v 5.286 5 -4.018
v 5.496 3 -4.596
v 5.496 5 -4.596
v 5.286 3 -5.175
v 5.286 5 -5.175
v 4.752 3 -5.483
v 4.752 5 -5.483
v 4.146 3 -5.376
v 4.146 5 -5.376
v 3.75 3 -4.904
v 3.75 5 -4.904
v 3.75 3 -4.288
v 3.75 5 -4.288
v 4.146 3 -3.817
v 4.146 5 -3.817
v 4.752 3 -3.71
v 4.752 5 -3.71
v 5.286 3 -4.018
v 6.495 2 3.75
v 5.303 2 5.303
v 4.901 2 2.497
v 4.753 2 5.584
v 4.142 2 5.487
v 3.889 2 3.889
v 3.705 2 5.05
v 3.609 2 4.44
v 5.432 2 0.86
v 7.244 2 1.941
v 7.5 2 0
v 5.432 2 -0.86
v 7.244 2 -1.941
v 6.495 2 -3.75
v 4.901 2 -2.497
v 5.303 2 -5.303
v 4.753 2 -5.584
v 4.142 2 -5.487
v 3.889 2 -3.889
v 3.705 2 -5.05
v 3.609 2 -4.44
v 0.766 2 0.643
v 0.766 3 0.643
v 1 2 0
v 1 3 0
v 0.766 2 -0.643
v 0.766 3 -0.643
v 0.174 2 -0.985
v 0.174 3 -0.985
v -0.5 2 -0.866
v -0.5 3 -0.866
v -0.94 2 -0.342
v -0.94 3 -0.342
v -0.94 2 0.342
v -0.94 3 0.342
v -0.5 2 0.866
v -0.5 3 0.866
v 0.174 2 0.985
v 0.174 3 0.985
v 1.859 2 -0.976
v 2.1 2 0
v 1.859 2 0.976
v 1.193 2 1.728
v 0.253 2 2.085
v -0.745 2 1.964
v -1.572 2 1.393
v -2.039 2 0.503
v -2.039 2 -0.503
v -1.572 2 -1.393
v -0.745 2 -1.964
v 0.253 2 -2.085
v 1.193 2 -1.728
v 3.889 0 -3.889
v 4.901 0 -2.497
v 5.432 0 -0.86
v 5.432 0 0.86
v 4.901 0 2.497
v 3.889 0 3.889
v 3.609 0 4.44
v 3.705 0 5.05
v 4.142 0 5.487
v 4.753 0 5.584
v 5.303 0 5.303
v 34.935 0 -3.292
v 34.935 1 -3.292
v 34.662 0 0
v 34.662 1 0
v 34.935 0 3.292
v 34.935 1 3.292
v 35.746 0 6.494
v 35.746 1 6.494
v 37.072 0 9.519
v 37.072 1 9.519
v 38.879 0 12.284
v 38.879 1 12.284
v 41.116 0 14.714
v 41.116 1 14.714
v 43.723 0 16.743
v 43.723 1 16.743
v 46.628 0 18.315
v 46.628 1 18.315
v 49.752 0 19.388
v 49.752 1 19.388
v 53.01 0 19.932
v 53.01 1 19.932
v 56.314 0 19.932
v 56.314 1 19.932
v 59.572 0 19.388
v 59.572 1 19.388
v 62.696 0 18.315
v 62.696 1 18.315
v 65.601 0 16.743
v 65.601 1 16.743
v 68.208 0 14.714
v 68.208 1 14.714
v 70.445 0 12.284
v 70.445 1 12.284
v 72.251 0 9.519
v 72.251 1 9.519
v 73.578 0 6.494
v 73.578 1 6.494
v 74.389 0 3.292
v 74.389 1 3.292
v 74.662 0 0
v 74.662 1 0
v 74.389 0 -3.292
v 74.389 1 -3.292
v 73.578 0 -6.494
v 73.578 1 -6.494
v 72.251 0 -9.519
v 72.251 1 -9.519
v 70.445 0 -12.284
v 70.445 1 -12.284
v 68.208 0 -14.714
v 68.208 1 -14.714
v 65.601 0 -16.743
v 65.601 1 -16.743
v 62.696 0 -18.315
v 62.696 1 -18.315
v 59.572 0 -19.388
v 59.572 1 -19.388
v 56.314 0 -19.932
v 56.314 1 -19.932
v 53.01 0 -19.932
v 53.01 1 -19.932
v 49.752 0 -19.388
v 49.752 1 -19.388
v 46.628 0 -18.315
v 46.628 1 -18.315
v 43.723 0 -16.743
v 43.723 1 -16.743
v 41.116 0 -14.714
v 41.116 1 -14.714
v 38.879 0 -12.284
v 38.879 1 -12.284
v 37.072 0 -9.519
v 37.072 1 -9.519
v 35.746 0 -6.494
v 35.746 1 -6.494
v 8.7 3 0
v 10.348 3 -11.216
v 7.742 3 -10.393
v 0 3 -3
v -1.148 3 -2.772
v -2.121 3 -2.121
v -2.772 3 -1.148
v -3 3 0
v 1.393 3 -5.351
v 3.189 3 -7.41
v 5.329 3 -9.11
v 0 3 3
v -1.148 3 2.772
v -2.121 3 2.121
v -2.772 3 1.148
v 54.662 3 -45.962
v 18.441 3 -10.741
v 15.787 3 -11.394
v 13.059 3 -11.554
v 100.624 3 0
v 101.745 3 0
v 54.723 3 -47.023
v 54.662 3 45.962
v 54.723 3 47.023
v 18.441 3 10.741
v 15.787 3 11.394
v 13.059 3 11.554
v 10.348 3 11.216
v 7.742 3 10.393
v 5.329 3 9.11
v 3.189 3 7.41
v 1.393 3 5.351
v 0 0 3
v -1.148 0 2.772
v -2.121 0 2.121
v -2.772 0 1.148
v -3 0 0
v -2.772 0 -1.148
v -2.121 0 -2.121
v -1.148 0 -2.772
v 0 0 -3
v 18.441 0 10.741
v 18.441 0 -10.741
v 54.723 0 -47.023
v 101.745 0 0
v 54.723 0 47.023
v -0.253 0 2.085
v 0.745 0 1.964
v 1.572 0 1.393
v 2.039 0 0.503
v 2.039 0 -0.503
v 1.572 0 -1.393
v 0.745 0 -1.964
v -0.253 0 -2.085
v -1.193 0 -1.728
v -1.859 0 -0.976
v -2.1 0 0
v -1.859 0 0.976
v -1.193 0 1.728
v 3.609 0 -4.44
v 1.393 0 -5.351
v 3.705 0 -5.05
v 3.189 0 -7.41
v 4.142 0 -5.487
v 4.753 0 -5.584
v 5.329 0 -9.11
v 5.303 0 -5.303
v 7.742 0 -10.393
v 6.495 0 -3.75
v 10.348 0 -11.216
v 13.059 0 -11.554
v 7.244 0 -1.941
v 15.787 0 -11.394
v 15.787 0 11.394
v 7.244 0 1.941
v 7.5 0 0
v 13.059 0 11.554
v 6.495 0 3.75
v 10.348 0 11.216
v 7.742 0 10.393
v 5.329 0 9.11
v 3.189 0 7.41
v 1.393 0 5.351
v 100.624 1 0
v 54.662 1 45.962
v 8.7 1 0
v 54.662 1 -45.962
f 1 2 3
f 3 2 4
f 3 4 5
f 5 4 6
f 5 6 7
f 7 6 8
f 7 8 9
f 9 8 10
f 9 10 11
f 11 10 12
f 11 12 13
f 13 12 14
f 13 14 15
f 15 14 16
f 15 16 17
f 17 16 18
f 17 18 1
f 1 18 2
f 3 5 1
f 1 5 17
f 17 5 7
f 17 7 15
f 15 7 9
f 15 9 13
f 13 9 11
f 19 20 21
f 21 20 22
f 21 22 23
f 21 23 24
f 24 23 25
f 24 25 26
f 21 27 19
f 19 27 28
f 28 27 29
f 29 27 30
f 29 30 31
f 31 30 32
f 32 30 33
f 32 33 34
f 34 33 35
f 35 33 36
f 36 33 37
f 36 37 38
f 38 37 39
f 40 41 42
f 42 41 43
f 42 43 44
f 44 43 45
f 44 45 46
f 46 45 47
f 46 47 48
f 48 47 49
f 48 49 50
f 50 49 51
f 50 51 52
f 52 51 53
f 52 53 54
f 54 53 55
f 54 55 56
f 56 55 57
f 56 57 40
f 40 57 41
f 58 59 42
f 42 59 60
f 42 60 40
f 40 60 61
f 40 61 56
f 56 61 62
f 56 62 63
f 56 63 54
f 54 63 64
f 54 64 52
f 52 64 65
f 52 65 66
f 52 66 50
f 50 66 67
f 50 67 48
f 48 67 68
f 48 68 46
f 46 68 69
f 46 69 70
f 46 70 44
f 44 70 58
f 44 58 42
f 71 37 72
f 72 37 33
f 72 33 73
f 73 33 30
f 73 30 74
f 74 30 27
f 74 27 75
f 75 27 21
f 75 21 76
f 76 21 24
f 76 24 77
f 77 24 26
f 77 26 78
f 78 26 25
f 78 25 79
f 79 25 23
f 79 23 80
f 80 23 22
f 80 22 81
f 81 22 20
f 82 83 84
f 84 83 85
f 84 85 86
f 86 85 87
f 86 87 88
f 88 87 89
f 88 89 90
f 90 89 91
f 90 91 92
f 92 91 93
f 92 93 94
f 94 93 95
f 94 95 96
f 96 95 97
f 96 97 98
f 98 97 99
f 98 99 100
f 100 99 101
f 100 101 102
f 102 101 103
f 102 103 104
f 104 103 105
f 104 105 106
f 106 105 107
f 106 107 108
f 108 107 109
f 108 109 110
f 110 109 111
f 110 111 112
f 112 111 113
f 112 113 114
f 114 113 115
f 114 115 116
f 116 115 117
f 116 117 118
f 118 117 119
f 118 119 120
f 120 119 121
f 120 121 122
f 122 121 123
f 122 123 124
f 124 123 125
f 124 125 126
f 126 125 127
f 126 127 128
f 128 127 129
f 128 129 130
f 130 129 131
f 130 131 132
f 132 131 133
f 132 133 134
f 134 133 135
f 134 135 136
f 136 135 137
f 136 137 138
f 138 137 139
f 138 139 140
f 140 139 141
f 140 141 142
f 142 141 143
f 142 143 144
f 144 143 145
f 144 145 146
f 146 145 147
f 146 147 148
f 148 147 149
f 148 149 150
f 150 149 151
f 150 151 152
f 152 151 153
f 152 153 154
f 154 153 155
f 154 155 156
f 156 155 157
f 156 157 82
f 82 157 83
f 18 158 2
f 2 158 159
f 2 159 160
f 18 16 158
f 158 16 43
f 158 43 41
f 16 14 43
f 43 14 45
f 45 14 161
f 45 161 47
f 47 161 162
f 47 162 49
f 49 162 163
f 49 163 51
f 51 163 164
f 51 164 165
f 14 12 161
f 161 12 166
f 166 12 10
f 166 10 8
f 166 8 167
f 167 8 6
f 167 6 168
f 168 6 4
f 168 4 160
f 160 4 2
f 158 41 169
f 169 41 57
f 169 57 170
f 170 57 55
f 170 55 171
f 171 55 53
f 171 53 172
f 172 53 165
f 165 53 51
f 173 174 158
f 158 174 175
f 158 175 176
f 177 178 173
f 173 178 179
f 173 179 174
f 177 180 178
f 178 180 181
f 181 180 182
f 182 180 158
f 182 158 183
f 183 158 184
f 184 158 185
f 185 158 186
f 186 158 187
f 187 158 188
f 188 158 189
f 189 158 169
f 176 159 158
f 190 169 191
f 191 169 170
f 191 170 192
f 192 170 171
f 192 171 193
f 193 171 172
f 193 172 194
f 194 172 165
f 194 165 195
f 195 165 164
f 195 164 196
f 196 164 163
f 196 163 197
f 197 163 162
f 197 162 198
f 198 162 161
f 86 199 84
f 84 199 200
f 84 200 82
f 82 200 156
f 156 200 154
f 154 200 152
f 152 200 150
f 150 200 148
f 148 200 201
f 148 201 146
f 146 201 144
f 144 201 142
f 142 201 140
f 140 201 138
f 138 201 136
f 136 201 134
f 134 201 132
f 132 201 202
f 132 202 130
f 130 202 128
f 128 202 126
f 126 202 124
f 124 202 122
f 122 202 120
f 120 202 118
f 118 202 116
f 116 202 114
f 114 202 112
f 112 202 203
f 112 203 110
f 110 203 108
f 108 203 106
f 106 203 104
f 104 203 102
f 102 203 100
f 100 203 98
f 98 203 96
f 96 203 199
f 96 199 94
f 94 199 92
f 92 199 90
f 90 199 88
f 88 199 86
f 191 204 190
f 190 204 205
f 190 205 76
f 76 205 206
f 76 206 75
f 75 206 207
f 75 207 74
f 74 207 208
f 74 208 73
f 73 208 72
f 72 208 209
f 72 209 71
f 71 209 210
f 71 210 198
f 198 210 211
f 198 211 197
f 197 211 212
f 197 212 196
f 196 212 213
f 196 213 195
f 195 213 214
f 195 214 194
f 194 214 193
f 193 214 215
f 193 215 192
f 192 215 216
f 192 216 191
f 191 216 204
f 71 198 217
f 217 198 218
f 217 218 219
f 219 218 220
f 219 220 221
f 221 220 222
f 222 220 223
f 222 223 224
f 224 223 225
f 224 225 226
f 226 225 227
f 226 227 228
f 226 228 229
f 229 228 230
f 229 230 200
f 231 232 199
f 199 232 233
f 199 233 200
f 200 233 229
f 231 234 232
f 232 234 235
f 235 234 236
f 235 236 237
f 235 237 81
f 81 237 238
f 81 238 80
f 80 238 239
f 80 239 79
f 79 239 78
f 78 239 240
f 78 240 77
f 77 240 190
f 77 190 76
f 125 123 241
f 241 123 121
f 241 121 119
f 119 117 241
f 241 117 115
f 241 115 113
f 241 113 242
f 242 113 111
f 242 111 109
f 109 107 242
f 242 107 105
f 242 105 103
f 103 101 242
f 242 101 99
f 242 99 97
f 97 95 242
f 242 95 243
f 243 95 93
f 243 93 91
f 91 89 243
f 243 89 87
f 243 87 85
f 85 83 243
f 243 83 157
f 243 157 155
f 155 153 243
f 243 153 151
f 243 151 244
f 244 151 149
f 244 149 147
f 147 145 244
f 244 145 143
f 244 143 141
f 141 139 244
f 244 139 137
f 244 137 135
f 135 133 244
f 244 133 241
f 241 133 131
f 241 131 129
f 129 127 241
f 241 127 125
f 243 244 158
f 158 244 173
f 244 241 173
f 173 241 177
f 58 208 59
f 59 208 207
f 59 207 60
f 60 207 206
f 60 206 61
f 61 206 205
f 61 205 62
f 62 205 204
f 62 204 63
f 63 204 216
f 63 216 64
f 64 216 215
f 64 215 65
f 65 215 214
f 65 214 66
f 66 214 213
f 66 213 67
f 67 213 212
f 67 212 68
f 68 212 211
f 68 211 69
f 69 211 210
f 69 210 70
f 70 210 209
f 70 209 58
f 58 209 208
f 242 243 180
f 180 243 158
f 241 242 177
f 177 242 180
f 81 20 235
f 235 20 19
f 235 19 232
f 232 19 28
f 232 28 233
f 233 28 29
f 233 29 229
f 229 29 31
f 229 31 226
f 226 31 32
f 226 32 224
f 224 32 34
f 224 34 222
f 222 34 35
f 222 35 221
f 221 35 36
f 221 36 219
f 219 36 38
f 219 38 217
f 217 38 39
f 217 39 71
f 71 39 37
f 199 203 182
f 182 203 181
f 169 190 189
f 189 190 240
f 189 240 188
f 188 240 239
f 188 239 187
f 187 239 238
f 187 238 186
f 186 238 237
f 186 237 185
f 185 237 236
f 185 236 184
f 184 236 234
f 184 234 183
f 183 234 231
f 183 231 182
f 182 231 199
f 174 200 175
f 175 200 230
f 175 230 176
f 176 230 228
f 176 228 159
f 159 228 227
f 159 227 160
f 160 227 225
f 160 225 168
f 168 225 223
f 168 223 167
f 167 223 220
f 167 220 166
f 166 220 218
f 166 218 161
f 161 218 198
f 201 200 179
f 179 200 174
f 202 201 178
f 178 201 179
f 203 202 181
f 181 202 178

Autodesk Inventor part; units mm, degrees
ref_plane "YZ Plane" through (0, 0, 0) normal (1, 0, 0) x (0, 1, 0)
ref_plane "XZ Plane" through (0, 0, 0) normal (0, 1, 0) x (-1, 0, 0)
ref_plane "XY Plane" through (0, 0, 0) normal (0, 0, 1) x (1, 0, 0)
sketch "Szkic4" plane through (0, 0, 0) normal (0, 1, 0) x (-1, 0, 0)
  circle A0 centre (0, 0) radius 2.1
  line L0 (-3, 3) -> (3, 3)
  line L1 (3, 3) -> (3, -3)
  line L2 (3, -3) -> (-3, -3)
  line L3 (-3, -3) -> (-3, 3)
  line L4 (-3, 3) -> (3, -3) construction
  line L5 (3, 3) -> (-3, -3) construction
  line L6 (0, 0) -> (-4.5962, -4.5962)
  line L7 (0, 0) -> (6.5, 0) construction
  line L8 (0, 0) -> (-4.5962, 4.5962)
  line L9 (0, 0) -> (6.5, 0) construction
  arc A1 (-4.5962, 4.5962) -> (-4.5962, -4.5962) centre (0, 0) ccw construction
  arc A2 (-5.3033, 5.3033) -> (-5.3033, -5.3033) centre (0, 0) ccw
  arc A3 (-3.8891, 3.8891) -> (-3.8891, -3.8891) centre (0, 0) ccw
  arc A4 (-3.8891, 3.8891) -> (-5.3033, 5.3033) centre (-4.5962, 4.5962) ccw
  arc A5 (-5.3033, -5.3033) -> (-3.8891, -3.8891) centre (-4.5962, -4.5962) ccw
  line L10 (0, 0) -> (-7.7, 0)
  line L11 (0, 0) -> (7.7, 0) construction
  line L12 (-7.7, 0) -> (-54.7226, -47.0226)
  line L13 (-54.7226, -47.0226) -> (-101.7452, 0)
  line L14 (-101.7452, 0) -> (-54.7226, 47.0226)
  line L15 (-54.7226, 47.0226) -> (-7.7, 0)
  line L16 (-7.7, 0) -> (58.8, 0) construction
  line L17 (-7.7, 0) -> (-8.7, 0)
  line L18 (-8.7, 0) -> (-54.6619, -45.9619)
  line L19 (-54.6619, -45.9619) -> (-100.6239, 0)
  line L20 (-100.6239, 0) -> (-54.6619, 45.9619)
  line L21 (-54.6619, 45.9619) -> (-8.7, 0)
  line L22 (-8.7, 0) -> (56.3, 0) construction
  arc A6 (-18.4411, -10.7411) -> (0, -3) centre (-13.548, 3.4383) ccw
  arc A7 (0, 3) -> (-18.4411, 10.7411) centre (-13.548, -3.4383) ccw
  point P0 (-18.4411, 10.7411)
  point P1 (0, 3)
  point P2 (-3, 0)
  dimension "d52" = 4.2
  dimension "d53" = 6
  dimension "d54" = 6
  dimension "d55" = 6.5
  dimension "d56" = 135
  dimension "d57" = 6.5
  dimension "d58" = 135
  dimension "d59" = 6.5
  dimension "d60" = 2
  dimension "d61" = 7.7
  dimension "d62" = 180
  dimension "d67" = 66.5
  dimension "d68" = 135
  dimension "d69" = 66.5
  dimension "d70" = 1
  dimension "d71" = 65
  dimension "d72" = 135
  dimension "d73" = 65
  dimension "d74" = 20
  dimension "d75" = 15
extrude "Wyciągnięcie proste4" add sketch "Szkic4" along normal blind 3 contours A0 L8 L0 L1 L2 L6 | A0 L10 L3 L8 | L6 L3 L10 A0 | L8 A4 A2 L10 L15 A7 L0 | L3 L10 A3 L8 | L6 A3 L10 L3 | L2 A6 L12 L10 A2 A5 L6 | L15 L12 L13 L14
extrude "Wyciągnięcie proste5" add sketch "Szkic4" along normal blind 1 contours L18 L19 L20 L21
surface extrude "PowWyciągnięciaProstego2" sketch "Szkic4" along normal blind 5.5 shown no curves A3 A4 A2 A5
fillet "Zaokrąglenie1" radius 3 2 edges at (-3, 1.5, 3) (-3, 1.5, -3)
sketch "Szkic5" plane through (0, 1, 0) normal (0, 1, 0) x (1, 0, 0)
  line L0 (8.7, 0) -> (54.6619, 45.9619) projected
  line L1 (8.7, 0) -> (100.6239, 0)
  circle A0 centre (54.6619, 0) radius 20
  point P0 (0, 0)
  dimension "d84" = 40
extrude "Wyciągnięcie proste6" cut sketch "Szkic5" against normal blind 10
sketch "Szkic6" plane through (0, 3, 0) normal (0, 1, 0) x (1, 0, 0)
  arc A0 (3.8891, -3.8891) -> (3.8891, 3.8891) centre (0, 0) ccw projected
  arc A1 (3.8891, -3.8891) -> (5.3033, -5.3033) centre (4.5962, -4.5962) ccw projected
  arc A2 (5.3033, -5.3033) -> (5.3033, 5.3033) centre (0, 0) ccw projected
  arc A3 (5.3033, 5.3033) -> (3.8891, 3.8891) centre (4.5962, 4.5962) ccw projected
  line L0 (0, 0) -> (4.5962, 4.5962)
  circle A4 centre (4.5962, 4.5962) radius 0.9
  circle A5 centre (0, 0) radius 2.1
  circle A6 centre (0, 0) radius 1
  point P0 (0, 0)
  dimension "d87" = 1.8
  dimension "d92" = 2
extrude "Wyciągnięcie proste7" add sketch "Szkic6" against normal blind 1 contours A0 A3 A2 A1 | A4 | A5
extrude "Wyciągnięcie proste8" add sketch "Szkic6" along normal blind 2 contours A4
properties part number "flowerstand"
